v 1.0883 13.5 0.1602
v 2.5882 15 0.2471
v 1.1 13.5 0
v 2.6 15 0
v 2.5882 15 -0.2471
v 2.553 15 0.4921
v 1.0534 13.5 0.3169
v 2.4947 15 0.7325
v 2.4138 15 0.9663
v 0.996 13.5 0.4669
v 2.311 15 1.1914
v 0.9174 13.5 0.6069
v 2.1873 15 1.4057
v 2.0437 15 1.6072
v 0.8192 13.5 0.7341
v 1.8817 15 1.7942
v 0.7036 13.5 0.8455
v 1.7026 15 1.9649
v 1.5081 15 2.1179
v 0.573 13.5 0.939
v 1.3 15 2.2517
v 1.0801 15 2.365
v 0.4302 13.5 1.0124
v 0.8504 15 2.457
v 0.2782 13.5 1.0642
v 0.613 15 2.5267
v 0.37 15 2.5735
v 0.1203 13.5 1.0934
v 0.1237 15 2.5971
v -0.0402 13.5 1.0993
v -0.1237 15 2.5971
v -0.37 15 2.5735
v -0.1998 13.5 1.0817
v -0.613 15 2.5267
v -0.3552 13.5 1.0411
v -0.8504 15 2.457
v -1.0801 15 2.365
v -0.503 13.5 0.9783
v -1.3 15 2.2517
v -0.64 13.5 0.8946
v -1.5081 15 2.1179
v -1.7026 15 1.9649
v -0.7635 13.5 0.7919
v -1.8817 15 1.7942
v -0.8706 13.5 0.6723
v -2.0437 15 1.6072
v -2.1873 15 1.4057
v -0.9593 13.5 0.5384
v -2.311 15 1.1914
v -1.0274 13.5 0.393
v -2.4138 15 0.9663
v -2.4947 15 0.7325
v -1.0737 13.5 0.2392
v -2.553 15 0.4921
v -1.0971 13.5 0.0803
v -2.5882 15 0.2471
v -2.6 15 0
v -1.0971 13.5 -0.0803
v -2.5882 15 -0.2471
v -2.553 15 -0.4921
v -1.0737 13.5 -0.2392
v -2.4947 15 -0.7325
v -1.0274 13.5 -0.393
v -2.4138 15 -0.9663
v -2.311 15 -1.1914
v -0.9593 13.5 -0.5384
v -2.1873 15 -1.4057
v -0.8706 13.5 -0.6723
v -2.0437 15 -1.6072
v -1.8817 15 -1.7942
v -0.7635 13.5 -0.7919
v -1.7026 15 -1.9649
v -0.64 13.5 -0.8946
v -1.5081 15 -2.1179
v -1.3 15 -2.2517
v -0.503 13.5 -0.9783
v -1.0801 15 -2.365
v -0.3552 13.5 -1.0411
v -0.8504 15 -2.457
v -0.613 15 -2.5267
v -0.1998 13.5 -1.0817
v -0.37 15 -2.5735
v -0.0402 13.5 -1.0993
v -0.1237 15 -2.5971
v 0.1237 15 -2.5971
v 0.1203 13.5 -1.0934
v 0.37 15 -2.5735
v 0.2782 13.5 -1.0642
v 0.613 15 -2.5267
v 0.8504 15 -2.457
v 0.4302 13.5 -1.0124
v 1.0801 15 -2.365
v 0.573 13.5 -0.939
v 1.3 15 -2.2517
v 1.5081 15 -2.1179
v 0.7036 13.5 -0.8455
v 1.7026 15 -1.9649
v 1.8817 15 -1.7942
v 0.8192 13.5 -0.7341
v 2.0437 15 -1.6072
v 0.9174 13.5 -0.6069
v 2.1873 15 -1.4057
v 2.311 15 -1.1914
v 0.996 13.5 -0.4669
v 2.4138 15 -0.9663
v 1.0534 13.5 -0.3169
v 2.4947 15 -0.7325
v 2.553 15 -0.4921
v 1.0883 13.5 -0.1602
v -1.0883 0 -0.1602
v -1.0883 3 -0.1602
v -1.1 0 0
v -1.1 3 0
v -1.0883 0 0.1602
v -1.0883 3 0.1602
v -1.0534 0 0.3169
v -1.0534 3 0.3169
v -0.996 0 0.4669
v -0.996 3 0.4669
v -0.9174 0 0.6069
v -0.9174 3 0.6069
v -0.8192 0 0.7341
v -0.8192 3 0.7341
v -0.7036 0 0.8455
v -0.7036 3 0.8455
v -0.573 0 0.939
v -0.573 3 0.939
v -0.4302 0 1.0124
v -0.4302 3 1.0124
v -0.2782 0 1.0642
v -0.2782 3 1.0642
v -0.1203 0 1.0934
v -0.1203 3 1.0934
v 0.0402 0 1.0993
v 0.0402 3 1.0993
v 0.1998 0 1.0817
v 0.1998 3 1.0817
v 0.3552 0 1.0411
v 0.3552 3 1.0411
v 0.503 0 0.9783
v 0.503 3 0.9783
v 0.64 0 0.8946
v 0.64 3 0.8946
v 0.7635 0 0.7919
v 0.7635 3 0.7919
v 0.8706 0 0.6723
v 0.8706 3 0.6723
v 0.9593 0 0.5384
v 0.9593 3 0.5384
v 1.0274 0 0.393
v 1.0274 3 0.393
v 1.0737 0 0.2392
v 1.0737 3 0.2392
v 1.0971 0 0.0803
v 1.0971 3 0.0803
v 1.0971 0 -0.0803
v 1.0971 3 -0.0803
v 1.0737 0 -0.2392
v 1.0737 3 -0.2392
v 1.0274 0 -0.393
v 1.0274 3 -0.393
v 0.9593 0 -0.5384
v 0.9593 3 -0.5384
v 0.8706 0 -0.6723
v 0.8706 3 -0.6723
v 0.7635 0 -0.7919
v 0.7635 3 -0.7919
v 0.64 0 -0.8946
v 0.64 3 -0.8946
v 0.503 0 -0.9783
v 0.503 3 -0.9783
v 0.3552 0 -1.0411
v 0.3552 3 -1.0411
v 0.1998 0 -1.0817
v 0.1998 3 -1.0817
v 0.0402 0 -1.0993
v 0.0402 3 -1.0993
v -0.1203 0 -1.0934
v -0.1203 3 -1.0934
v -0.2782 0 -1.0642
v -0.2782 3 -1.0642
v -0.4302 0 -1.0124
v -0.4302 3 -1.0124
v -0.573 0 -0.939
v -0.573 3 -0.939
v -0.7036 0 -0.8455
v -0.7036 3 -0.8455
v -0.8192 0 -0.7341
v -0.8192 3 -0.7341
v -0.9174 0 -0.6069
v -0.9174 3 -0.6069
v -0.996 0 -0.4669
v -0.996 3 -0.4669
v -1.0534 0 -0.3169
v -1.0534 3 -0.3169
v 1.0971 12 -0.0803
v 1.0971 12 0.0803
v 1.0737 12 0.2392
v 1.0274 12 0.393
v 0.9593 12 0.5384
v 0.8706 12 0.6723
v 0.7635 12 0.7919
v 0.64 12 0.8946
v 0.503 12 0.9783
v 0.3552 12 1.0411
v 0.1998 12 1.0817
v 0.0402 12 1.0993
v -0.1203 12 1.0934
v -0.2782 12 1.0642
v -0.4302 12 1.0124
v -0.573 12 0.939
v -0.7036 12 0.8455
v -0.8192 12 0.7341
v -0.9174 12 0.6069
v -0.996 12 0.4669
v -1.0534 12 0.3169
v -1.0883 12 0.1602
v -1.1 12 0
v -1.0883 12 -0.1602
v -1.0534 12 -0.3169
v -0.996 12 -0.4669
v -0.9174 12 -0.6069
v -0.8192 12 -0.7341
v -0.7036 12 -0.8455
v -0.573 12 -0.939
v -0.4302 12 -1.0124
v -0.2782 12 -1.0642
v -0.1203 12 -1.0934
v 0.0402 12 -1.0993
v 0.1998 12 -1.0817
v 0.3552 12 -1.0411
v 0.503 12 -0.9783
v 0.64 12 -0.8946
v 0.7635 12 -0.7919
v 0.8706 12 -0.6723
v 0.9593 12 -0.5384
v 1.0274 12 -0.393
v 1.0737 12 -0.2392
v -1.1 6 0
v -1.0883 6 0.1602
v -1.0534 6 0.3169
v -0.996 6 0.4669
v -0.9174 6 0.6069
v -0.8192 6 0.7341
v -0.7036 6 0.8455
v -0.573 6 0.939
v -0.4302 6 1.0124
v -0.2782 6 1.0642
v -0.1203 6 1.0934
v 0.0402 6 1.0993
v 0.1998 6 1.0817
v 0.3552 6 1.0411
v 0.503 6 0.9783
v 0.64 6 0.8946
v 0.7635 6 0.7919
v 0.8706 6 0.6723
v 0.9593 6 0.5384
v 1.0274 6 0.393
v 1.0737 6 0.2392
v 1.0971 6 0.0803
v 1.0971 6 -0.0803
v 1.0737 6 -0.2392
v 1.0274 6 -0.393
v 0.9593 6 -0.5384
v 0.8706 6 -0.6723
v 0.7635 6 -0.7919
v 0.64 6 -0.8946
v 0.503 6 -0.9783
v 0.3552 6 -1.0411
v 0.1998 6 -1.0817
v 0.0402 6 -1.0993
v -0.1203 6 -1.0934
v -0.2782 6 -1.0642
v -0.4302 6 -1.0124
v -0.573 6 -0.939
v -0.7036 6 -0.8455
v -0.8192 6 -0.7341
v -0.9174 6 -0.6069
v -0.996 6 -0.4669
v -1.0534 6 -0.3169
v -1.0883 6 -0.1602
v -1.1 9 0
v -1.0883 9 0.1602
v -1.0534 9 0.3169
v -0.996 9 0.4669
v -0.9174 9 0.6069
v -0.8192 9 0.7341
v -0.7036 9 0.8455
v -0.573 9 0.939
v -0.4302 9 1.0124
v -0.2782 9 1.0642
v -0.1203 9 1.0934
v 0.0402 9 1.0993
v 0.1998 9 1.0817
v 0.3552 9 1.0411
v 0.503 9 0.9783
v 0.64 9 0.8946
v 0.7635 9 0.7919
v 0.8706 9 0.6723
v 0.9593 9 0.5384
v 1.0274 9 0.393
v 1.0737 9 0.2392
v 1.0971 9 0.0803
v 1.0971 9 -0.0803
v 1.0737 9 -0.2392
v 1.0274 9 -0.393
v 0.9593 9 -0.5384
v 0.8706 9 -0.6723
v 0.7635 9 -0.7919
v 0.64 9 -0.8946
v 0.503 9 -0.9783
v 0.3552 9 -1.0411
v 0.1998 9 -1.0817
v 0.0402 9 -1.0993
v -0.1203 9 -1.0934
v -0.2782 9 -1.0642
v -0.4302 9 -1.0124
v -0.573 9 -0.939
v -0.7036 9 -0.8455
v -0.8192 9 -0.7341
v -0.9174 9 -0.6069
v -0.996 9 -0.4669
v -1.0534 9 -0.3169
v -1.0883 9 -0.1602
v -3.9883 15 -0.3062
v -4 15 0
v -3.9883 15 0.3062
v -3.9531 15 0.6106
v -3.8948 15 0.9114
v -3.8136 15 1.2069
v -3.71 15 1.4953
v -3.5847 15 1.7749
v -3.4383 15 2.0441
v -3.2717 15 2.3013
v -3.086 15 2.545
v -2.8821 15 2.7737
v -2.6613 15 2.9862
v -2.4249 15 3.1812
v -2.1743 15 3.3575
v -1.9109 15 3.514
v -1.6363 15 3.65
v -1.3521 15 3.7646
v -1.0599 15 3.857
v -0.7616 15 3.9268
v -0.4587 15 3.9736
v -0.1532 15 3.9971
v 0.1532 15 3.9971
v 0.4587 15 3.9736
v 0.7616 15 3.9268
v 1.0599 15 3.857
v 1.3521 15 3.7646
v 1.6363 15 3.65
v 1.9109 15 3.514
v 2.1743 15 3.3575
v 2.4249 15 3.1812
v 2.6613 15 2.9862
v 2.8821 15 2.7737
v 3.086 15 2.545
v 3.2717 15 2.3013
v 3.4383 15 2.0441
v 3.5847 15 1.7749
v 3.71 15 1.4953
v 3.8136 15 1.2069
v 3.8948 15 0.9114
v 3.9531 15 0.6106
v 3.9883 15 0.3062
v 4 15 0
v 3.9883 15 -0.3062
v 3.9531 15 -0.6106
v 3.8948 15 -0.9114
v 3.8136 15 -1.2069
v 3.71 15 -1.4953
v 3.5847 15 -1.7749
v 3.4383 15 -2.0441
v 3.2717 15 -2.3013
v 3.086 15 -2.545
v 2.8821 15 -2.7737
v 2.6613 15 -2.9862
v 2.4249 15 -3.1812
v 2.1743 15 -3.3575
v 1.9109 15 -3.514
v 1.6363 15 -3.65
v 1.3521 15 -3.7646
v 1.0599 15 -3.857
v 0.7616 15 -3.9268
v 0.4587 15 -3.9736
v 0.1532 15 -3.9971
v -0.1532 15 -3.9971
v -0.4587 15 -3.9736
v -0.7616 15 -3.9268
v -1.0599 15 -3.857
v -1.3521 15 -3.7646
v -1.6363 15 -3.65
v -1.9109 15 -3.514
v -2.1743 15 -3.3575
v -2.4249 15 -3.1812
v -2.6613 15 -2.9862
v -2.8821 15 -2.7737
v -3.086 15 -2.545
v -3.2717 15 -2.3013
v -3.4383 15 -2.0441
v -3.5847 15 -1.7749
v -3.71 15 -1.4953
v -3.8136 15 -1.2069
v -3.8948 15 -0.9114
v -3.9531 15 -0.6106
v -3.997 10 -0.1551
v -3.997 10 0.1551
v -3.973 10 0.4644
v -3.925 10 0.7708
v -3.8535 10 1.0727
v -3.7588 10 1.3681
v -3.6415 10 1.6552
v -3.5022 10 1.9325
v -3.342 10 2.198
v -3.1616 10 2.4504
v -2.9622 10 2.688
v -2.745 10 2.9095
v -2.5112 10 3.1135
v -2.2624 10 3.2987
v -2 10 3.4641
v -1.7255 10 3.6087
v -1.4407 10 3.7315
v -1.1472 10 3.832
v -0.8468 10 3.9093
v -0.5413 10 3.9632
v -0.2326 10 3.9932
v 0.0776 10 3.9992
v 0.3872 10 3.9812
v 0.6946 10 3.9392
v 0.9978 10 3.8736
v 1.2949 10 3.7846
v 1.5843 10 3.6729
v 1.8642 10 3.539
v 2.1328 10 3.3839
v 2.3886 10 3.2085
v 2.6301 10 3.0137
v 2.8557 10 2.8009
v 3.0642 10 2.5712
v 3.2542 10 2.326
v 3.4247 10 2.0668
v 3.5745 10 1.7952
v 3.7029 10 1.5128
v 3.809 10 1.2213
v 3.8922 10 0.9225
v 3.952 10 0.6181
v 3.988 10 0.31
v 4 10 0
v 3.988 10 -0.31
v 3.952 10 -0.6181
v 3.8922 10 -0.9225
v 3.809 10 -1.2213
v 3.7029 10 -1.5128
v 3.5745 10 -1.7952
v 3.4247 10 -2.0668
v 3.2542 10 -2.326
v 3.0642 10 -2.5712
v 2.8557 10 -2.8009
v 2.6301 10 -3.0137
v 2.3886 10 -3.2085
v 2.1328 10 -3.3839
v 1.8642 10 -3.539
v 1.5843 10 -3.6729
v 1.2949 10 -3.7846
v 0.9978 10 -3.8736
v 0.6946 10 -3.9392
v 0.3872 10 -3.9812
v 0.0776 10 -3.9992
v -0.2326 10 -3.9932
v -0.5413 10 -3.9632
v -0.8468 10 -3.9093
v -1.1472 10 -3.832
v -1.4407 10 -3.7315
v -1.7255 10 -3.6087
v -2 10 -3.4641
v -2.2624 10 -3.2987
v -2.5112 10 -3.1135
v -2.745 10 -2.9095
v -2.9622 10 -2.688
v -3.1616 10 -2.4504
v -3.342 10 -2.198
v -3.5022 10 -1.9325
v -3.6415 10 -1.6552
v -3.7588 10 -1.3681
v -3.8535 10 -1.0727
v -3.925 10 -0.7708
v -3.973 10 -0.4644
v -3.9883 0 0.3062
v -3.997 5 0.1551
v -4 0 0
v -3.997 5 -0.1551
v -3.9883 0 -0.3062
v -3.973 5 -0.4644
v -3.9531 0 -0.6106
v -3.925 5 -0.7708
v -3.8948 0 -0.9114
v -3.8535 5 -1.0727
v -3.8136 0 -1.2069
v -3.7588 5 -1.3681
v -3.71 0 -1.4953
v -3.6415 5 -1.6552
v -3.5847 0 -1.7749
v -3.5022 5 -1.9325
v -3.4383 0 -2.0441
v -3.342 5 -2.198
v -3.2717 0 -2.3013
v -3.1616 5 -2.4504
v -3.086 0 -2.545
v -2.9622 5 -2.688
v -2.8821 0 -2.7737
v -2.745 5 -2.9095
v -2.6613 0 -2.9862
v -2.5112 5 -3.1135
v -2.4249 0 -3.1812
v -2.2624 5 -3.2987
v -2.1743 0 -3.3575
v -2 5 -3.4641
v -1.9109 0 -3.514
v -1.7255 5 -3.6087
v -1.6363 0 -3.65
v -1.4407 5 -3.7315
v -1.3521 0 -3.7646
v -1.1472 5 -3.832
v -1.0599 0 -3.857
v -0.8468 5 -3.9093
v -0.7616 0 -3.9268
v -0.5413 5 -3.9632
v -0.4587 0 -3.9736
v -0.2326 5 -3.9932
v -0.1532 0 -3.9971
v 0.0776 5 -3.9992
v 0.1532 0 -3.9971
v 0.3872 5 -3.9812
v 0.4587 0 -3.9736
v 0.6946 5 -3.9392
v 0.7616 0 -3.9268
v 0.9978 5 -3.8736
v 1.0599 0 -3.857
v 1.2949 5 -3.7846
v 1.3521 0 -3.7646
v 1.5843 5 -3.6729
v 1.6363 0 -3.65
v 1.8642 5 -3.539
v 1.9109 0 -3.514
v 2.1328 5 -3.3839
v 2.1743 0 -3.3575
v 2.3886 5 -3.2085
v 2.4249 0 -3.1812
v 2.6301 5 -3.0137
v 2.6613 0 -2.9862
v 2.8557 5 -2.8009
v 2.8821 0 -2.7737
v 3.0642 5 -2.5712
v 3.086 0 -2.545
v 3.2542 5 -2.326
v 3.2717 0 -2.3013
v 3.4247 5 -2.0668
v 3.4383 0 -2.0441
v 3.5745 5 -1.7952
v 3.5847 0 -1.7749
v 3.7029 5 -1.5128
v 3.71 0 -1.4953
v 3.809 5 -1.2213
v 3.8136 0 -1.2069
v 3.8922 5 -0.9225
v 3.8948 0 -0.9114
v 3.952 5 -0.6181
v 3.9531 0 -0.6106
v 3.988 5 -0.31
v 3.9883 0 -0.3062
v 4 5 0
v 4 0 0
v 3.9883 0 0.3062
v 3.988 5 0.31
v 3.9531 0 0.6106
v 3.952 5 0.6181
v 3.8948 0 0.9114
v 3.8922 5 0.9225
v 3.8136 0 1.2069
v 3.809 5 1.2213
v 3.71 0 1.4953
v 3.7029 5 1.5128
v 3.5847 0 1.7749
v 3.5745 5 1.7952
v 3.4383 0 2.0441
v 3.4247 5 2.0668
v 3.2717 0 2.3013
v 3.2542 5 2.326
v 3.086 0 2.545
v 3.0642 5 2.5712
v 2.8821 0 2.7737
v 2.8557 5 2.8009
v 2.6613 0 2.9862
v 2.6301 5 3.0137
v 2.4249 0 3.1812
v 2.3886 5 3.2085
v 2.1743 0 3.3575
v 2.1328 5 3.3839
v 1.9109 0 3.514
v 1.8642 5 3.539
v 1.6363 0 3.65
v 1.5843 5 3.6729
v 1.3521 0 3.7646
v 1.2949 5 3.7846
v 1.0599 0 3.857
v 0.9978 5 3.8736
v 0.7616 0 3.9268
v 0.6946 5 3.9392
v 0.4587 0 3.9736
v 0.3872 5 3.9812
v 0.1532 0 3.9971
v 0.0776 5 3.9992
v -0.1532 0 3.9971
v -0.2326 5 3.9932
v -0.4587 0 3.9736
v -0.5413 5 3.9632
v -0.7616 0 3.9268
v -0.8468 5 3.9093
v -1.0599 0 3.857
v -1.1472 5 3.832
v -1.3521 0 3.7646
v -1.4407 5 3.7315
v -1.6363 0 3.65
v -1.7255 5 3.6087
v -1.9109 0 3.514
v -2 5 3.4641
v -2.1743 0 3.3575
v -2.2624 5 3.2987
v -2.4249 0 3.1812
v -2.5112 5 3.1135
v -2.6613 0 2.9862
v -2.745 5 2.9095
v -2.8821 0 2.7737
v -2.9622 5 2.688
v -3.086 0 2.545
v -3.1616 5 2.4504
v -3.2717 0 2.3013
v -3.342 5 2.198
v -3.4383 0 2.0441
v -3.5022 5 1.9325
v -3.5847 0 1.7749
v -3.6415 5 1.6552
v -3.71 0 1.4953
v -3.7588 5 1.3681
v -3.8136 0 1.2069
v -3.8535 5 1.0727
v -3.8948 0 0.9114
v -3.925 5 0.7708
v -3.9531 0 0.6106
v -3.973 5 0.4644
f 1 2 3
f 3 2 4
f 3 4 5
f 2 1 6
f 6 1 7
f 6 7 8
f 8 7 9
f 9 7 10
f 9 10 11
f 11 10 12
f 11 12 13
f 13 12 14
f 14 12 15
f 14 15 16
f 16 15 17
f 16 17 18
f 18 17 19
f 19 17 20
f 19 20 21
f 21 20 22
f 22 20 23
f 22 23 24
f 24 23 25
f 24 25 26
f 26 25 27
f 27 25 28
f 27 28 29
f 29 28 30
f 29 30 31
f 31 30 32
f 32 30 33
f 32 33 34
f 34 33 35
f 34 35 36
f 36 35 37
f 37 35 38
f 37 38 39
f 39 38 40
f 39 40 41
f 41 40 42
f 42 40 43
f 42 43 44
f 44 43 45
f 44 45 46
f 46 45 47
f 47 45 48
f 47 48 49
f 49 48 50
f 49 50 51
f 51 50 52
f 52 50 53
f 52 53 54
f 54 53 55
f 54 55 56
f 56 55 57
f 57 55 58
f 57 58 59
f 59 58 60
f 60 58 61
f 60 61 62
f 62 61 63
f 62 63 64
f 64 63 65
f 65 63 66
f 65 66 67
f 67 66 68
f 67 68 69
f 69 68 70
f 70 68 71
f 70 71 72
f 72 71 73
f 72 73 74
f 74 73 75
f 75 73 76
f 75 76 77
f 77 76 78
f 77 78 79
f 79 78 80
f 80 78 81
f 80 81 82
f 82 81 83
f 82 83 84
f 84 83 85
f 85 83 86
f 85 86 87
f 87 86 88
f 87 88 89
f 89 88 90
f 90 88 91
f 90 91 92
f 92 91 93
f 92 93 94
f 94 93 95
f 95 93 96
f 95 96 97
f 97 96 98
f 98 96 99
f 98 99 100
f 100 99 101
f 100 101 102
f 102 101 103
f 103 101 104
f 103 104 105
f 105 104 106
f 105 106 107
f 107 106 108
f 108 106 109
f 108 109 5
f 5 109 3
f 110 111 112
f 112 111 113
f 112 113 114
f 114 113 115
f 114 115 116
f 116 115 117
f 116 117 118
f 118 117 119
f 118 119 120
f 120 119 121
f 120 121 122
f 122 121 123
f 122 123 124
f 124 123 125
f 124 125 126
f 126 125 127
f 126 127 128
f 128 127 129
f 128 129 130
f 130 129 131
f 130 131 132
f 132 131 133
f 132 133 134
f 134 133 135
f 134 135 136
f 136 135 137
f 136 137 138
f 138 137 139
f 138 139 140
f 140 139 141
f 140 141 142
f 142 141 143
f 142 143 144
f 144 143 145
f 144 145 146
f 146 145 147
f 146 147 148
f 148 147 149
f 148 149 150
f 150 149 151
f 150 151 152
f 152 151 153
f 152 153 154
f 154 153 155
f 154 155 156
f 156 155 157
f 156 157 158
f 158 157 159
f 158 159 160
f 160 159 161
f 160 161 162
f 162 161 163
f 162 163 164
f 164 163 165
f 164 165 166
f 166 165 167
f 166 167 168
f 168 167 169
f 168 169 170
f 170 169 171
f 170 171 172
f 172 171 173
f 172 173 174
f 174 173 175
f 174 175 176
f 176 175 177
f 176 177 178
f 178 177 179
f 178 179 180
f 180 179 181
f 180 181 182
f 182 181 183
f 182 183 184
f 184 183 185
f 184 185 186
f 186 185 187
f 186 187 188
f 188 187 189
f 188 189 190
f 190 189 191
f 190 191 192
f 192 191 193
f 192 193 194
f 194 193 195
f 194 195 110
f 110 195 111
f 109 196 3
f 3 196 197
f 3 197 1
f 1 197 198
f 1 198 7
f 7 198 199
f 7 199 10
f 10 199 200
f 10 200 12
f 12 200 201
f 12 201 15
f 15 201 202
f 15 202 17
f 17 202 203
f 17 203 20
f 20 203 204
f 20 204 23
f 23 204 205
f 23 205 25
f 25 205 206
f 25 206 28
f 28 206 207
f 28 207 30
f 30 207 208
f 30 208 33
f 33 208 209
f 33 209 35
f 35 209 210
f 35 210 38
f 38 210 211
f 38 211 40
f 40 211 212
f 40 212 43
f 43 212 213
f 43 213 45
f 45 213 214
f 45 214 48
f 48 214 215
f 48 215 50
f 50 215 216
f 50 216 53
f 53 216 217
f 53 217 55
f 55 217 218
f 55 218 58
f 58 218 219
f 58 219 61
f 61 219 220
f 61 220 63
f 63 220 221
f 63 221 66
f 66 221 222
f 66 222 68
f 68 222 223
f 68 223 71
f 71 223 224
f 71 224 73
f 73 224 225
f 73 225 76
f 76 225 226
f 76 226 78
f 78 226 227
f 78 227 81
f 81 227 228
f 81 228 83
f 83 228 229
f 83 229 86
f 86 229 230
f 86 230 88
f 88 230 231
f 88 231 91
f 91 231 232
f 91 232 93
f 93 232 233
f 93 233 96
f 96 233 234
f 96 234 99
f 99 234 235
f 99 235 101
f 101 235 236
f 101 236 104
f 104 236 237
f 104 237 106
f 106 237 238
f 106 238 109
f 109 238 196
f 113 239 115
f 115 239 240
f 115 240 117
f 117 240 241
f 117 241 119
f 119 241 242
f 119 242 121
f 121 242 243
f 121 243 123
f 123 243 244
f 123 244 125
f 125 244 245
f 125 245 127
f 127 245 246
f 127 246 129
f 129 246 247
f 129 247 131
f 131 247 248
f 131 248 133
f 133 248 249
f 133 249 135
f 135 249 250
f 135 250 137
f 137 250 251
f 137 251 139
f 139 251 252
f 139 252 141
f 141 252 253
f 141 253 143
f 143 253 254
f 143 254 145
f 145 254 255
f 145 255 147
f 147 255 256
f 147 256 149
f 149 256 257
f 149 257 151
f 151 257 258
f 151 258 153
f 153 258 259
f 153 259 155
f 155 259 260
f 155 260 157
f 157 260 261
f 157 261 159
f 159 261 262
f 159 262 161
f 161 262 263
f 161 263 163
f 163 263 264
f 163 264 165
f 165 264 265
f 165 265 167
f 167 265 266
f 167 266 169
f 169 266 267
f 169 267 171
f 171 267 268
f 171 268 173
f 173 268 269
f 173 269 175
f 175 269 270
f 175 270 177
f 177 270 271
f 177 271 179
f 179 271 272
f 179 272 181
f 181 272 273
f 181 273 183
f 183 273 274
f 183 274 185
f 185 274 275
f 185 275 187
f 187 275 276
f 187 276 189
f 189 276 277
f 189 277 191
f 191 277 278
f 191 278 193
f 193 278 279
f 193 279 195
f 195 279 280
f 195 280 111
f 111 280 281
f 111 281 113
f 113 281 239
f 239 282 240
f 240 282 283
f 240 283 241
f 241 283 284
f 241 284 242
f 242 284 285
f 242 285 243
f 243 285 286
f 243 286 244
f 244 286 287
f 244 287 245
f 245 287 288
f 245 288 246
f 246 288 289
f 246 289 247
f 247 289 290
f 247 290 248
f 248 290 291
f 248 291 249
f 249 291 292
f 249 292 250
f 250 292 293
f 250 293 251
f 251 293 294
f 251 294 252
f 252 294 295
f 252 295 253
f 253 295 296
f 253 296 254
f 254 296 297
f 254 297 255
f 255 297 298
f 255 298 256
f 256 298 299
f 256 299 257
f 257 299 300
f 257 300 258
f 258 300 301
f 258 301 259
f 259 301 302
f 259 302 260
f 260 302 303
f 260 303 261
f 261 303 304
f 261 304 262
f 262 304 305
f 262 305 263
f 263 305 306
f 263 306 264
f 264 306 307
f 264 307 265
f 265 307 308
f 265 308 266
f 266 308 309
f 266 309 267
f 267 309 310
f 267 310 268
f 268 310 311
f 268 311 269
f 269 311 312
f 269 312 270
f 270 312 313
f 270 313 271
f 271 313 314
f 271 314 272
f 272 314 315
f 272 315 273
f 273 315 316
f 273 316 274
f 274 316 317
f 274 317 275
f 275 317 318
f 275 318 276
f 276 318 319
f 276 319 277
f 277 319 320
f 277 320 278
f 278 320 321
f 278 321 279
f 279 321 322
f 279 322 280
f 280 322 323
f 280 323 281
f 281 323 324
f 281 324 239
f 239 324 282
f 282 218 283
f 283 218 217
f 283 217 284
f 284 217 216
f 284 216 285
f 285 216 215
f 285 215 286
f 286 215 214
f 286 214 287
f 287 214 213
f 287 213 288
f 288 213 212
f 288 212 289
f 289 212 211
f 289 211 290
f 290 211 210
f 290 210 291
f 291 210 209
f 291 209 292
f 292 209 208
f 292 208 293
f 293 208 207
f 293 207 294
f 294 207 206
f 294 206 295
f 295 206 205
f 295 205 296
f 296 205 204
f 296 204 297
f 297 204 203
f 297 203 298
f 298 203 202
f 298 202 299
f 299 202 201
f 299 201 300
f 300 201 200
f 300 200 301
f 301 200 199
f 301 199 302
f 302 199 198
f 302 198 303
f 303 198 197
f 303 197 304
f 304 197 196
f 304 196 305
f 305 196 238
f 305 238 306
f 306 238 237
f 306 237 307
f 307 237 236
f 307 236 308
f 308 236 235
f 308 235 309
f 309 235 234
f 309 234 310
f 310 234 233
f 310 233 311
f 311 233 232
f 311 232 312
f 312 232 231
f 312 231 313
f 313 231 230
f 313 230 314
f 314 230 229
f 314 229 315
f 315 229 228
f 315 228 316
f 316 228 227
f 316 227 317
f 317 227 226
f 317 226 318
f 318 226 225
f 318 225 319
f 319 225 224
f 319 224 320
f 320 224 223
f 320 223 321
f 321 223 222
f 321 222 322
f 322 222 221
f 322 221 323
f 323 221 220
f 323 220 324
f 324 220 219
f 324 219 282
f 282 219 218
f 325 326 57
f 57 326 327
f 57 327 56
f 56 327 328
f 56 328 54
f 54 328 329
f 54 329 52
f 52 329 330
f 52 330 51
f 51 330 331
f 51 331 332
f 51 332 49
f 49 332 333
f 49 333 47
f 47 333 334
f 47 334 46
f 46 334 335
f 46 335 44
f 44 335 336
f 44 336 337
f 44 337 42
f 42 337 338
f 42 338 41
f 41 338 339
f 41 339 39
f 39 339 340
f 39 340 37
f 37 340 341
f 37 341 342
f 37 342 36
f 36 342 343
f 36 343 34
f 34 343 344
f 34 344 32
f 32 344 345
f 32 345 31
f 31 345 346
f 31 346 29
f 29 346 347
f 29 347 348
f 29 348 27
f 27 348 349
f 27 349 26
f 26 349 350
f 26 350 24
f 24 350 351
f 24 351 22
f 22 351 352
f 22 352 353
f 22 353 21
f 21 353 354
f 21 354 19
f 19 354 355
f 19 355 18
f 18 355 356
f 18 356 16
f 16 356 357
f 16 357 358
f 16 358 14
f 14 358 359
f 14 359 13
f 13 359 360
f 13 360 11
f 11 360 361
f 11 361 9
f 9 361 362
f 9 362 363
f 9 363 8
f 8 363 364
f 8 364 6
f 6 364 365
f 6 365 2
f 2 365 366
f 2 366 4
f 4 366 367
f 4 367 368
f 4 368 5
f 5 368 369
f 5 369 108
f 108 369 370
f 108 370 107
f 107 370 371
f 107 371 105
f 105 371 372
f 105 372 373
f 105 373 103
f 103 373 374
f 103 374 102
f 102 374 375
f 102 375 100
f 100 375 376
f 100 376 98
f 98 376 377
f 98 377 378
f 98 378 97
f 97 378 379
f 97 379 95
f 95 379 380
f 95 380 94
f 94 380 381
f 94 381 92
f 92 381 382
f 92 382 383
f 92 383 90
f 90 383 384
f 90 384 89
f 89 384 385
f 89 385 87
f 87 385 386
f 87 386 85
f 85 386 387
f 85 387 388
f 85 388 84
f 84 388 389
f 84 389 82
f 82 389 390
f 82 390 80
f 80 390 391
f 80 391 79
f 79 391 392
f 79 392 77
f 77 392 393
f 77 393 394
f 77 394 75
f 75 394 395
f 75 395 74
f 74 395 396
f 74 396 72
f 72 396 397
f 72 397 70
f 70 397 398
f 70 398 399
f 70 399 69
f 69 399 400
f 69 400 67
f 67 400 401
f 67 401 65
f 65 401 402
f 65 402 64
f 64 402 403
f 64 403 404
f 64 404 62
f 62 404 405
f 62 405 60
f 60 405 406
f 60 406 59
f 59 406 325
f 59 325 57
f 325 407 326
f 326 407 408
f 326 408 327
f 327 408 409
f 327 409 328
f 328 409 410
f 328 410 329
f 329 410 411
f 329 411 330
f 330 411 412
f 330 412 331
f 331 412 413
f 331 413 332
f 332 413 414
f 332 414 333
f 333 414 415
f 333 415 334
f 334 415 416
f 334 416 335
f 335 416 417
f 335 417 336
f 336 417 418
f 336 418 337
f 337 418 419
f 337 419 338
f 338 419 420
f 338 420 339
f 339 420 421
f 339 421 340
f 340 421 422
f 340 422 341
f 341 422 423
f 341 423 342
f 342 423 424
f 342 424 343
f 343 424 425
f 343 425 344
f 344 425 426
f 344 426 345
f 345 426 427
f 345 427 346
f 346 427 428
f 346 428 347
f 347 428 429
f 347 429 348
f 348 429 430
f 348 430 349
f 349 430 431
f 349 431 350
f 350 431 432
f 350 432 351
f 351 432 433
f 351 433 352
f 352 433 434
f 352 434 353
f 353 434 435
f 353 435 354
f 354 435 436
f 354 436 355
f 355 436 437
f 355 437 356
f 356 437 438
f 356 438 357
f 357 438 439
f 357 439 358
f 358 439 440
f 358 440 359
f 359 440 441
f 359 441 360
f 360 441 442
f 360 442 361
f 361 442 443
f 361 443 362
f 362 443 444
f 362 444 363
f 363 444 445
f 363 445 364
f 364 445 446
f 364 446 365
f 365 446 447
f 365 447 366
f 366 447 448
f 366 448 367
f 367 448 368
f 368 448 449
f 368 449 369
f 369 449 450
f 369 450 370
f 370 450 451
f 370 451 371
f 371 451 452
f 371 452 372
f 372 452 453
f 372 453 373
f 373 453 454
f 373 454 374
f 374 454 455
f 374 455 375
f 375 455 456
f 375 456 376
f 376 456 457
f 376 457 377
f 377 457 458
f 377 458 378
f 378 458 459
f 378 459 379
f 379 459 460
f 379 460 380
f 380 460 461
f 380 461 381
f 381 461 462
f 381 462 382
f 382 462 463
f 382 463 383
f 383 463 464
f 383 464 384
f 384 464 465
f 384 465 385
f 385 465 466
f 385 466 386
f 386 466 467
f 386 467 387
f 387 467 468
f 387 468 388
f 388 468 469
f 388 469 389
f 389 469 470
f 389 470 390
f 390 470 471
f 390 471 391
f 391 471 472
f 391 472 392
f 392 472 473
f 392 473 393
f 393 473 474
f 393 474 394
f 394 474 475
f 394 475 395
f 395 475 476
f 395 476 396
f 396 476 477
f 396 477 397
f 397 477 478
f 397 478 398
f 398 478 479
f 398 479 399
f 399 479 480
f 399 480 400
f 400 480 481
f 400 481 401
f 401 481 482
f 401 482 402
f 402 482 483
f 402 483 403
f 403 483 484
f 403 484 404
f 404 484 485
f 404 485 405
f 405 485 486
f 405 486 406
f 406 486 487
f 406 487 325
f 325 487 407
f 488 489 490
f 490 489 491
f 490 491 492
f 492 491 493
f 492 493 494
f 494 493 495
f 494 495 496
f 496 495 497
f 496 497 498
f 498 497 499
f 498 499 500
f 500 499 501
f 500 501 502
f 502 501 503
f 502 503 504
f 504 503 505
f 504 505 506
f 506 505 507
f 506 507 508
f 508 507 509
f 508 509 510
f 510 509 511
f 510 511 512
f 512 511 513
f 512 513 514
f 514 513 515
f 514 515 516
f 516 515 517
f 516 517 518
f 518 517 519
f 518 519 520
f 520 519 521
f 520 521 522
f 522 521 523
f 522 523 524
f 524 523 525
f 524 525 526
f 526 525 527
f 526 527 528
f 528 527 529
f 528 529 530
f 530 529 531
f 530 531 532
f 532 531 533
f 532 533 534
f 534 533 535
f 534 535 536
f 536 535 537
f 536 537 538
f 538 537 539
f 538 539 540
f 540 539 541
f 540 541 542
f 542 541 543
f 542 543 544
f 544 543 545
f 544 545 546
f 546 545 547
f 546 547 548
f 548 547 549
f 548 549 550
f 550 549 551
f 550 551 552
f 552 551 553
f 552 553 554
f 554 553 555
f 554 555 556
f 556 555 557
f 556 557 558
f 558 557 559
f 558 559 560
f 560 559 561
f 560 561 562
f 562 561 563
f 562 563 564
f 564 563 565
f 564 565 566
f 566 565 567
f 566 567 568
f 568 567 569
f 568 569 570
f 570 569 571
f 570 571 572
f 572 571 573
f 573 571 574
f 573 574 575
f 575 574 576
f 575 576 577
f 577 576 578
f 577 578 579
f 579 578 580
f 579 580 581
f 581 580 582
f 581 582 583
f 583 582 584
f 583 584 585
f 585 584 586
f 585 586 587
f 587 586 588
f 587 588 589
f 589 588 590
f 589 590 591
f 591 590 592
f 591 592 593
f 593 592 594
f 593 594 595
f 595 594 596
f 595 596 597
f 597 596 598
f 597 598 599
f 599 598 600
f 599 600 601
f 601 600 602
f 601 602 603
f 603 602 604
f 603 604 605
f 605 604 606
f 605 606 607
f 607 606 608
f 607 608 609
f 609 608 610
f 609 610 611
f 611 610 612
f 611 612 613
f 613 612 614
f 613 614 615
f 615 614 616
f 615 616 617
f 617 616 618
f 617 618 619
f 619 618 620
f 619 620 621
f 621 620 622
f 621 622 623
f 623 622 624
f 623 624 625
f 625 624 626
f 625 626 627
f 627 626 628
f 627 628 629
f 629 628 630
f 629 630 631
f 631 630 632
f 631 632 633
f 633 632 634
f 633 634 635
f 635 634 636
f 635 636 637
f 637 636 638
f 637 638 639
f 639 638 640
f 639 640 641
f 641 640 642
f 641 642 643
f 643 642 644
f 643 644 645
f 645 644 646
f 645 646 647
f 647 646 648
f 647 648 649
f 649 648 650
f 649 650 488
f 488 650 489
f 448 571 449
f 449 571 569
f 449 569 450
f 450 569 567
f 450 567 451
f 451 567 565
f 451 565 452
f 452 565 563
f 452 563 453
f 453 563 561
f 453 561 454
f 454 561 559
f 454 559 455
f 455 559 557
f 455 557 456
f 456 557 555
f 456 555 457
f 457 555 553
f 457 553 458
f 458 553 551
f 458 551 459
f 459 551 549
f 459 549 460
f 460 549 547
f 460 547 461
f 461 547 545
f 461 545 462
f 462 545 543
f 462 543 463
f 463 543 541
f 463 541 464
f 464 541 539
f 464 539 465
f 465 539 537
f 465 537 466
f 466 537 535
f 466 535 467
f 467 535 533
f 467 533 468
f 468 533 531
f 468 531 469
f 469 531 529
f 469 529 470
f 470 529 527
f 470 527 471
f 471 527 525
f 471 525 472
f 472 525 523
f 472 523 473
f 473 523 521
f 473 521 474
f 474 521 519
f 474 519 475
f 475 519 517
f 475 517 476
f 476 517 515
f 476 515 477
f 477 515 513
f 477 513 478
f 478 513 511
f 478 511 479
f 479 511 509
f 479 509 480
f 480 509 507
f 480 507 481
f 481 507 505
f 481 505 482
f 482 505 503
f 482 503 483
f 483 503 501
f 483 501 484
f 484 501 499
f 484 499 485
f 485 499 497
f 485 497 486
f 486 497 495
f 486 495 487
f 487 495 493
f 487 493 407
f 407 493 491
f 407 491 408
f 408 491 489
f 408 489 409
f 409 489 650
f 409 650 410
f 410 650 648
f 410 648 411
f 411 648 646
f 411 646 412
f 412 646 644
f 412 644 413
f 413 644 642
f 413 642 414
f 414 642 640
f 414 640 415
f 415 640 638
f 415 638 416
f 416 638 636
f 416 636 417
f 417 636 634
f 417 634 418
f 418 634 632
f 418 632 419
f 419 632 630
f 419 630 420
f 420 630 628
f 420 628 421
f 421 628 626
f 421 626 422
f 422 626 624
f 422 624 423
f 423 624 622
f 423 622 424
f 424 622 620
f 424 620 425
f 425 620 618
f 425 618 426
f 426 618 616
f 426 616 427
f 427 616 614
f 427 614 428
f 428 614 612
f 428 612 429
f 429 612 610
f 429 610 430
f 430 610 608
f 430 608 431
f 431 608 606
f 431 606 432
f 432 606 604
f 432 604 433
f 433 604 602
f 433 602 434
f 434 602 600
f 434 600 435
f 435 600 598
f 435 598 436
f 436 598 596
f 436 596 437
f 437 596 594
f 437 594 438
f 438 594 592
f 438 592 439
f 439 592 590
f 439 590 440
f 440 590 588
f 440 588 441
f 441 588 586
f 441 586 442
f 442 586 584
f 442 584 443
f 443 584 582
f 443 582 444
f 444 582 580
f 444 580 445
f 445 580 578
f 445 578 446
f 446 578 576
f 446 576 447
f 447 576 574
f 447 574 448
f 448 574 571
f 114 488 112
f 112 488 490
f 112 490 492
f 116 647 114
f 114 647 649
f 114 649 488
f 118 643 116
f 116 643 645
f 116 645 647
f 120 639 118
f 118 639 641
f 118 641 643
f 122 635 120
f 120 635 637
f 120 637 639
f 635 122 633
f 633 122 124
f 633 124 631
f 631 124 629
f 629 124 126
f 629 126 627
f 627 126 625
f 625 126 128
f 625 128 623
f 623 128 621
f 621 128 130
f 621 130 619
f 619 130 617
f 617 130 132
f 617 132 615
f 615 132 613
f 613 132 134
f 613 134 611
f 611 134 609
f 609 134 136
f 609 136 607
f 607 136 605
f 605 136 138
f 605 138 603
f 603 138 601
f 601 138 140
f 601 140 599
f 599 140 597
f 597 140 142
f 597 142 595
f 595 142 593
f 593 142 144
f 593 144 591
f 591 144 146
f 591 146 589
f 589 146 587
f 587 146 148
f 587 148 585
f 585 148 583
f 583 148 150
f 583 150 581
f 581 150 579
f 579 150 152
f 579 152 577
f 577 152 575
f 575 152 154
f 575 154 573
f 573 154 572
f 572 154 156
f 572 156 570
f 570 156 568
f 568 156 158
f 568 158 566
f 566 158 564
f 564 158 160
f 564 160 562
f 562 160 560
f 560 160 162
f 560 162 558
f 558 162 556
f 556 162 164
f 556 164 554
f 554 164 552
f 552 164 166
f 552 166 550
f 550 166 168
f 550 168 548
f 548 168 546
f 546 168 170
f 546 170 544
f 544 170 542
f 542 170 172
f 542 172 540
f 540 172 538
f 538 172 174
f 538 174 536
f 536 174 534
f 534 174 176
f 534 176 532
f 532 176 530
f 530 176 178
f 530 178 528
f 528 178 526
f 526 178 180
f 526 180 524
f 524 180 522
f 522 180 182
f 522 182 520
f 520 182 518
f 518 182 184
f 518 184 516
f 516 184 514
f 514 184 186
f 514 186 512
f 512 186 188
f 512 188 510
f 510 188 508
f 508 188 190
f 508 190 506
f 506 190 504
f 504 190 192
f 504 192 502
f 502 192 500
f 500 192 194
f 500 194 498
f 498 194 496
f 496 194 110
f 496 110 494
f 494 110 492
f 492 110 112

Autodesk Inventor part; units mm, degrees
ref_plane "YZ Plane" through (0, 0, 0) normal (1, 0, 0) x (0, 1, 0)
ref_plane "XZ Plane" through (0, 0, 0) normal (0, 1, 0) x (-1, 0, 0)
ref_plane "XY Plane" through (0, 0, 0) normal (0, 0, 1) x (1, 0, 0)
sketch "Sketch1" plane through (0, 0, 0) normal (0, 1, 0) x (-1, 0, 0)
  circle A0 centre (0, 0) radius 4
  dimension "d0" = 8
extrude "Extrusion1" add sketch "Sketch1" along normal blind 15
sketch "Sketch2" plane through (0, 15, 0) normal (0, 1, 0) x (1, 0, 0)
  circle A0 centre (0, 0) radius 1.1
  dimension "d3" = 2.2
extrude "Extrusion2" cut sketch "Sketch2" against normal through all
chamfer "Chamfer1" distance 1.5 angle 45 1 edges at (-1.1, 15, 0)
properties part number "axe_bottom"
